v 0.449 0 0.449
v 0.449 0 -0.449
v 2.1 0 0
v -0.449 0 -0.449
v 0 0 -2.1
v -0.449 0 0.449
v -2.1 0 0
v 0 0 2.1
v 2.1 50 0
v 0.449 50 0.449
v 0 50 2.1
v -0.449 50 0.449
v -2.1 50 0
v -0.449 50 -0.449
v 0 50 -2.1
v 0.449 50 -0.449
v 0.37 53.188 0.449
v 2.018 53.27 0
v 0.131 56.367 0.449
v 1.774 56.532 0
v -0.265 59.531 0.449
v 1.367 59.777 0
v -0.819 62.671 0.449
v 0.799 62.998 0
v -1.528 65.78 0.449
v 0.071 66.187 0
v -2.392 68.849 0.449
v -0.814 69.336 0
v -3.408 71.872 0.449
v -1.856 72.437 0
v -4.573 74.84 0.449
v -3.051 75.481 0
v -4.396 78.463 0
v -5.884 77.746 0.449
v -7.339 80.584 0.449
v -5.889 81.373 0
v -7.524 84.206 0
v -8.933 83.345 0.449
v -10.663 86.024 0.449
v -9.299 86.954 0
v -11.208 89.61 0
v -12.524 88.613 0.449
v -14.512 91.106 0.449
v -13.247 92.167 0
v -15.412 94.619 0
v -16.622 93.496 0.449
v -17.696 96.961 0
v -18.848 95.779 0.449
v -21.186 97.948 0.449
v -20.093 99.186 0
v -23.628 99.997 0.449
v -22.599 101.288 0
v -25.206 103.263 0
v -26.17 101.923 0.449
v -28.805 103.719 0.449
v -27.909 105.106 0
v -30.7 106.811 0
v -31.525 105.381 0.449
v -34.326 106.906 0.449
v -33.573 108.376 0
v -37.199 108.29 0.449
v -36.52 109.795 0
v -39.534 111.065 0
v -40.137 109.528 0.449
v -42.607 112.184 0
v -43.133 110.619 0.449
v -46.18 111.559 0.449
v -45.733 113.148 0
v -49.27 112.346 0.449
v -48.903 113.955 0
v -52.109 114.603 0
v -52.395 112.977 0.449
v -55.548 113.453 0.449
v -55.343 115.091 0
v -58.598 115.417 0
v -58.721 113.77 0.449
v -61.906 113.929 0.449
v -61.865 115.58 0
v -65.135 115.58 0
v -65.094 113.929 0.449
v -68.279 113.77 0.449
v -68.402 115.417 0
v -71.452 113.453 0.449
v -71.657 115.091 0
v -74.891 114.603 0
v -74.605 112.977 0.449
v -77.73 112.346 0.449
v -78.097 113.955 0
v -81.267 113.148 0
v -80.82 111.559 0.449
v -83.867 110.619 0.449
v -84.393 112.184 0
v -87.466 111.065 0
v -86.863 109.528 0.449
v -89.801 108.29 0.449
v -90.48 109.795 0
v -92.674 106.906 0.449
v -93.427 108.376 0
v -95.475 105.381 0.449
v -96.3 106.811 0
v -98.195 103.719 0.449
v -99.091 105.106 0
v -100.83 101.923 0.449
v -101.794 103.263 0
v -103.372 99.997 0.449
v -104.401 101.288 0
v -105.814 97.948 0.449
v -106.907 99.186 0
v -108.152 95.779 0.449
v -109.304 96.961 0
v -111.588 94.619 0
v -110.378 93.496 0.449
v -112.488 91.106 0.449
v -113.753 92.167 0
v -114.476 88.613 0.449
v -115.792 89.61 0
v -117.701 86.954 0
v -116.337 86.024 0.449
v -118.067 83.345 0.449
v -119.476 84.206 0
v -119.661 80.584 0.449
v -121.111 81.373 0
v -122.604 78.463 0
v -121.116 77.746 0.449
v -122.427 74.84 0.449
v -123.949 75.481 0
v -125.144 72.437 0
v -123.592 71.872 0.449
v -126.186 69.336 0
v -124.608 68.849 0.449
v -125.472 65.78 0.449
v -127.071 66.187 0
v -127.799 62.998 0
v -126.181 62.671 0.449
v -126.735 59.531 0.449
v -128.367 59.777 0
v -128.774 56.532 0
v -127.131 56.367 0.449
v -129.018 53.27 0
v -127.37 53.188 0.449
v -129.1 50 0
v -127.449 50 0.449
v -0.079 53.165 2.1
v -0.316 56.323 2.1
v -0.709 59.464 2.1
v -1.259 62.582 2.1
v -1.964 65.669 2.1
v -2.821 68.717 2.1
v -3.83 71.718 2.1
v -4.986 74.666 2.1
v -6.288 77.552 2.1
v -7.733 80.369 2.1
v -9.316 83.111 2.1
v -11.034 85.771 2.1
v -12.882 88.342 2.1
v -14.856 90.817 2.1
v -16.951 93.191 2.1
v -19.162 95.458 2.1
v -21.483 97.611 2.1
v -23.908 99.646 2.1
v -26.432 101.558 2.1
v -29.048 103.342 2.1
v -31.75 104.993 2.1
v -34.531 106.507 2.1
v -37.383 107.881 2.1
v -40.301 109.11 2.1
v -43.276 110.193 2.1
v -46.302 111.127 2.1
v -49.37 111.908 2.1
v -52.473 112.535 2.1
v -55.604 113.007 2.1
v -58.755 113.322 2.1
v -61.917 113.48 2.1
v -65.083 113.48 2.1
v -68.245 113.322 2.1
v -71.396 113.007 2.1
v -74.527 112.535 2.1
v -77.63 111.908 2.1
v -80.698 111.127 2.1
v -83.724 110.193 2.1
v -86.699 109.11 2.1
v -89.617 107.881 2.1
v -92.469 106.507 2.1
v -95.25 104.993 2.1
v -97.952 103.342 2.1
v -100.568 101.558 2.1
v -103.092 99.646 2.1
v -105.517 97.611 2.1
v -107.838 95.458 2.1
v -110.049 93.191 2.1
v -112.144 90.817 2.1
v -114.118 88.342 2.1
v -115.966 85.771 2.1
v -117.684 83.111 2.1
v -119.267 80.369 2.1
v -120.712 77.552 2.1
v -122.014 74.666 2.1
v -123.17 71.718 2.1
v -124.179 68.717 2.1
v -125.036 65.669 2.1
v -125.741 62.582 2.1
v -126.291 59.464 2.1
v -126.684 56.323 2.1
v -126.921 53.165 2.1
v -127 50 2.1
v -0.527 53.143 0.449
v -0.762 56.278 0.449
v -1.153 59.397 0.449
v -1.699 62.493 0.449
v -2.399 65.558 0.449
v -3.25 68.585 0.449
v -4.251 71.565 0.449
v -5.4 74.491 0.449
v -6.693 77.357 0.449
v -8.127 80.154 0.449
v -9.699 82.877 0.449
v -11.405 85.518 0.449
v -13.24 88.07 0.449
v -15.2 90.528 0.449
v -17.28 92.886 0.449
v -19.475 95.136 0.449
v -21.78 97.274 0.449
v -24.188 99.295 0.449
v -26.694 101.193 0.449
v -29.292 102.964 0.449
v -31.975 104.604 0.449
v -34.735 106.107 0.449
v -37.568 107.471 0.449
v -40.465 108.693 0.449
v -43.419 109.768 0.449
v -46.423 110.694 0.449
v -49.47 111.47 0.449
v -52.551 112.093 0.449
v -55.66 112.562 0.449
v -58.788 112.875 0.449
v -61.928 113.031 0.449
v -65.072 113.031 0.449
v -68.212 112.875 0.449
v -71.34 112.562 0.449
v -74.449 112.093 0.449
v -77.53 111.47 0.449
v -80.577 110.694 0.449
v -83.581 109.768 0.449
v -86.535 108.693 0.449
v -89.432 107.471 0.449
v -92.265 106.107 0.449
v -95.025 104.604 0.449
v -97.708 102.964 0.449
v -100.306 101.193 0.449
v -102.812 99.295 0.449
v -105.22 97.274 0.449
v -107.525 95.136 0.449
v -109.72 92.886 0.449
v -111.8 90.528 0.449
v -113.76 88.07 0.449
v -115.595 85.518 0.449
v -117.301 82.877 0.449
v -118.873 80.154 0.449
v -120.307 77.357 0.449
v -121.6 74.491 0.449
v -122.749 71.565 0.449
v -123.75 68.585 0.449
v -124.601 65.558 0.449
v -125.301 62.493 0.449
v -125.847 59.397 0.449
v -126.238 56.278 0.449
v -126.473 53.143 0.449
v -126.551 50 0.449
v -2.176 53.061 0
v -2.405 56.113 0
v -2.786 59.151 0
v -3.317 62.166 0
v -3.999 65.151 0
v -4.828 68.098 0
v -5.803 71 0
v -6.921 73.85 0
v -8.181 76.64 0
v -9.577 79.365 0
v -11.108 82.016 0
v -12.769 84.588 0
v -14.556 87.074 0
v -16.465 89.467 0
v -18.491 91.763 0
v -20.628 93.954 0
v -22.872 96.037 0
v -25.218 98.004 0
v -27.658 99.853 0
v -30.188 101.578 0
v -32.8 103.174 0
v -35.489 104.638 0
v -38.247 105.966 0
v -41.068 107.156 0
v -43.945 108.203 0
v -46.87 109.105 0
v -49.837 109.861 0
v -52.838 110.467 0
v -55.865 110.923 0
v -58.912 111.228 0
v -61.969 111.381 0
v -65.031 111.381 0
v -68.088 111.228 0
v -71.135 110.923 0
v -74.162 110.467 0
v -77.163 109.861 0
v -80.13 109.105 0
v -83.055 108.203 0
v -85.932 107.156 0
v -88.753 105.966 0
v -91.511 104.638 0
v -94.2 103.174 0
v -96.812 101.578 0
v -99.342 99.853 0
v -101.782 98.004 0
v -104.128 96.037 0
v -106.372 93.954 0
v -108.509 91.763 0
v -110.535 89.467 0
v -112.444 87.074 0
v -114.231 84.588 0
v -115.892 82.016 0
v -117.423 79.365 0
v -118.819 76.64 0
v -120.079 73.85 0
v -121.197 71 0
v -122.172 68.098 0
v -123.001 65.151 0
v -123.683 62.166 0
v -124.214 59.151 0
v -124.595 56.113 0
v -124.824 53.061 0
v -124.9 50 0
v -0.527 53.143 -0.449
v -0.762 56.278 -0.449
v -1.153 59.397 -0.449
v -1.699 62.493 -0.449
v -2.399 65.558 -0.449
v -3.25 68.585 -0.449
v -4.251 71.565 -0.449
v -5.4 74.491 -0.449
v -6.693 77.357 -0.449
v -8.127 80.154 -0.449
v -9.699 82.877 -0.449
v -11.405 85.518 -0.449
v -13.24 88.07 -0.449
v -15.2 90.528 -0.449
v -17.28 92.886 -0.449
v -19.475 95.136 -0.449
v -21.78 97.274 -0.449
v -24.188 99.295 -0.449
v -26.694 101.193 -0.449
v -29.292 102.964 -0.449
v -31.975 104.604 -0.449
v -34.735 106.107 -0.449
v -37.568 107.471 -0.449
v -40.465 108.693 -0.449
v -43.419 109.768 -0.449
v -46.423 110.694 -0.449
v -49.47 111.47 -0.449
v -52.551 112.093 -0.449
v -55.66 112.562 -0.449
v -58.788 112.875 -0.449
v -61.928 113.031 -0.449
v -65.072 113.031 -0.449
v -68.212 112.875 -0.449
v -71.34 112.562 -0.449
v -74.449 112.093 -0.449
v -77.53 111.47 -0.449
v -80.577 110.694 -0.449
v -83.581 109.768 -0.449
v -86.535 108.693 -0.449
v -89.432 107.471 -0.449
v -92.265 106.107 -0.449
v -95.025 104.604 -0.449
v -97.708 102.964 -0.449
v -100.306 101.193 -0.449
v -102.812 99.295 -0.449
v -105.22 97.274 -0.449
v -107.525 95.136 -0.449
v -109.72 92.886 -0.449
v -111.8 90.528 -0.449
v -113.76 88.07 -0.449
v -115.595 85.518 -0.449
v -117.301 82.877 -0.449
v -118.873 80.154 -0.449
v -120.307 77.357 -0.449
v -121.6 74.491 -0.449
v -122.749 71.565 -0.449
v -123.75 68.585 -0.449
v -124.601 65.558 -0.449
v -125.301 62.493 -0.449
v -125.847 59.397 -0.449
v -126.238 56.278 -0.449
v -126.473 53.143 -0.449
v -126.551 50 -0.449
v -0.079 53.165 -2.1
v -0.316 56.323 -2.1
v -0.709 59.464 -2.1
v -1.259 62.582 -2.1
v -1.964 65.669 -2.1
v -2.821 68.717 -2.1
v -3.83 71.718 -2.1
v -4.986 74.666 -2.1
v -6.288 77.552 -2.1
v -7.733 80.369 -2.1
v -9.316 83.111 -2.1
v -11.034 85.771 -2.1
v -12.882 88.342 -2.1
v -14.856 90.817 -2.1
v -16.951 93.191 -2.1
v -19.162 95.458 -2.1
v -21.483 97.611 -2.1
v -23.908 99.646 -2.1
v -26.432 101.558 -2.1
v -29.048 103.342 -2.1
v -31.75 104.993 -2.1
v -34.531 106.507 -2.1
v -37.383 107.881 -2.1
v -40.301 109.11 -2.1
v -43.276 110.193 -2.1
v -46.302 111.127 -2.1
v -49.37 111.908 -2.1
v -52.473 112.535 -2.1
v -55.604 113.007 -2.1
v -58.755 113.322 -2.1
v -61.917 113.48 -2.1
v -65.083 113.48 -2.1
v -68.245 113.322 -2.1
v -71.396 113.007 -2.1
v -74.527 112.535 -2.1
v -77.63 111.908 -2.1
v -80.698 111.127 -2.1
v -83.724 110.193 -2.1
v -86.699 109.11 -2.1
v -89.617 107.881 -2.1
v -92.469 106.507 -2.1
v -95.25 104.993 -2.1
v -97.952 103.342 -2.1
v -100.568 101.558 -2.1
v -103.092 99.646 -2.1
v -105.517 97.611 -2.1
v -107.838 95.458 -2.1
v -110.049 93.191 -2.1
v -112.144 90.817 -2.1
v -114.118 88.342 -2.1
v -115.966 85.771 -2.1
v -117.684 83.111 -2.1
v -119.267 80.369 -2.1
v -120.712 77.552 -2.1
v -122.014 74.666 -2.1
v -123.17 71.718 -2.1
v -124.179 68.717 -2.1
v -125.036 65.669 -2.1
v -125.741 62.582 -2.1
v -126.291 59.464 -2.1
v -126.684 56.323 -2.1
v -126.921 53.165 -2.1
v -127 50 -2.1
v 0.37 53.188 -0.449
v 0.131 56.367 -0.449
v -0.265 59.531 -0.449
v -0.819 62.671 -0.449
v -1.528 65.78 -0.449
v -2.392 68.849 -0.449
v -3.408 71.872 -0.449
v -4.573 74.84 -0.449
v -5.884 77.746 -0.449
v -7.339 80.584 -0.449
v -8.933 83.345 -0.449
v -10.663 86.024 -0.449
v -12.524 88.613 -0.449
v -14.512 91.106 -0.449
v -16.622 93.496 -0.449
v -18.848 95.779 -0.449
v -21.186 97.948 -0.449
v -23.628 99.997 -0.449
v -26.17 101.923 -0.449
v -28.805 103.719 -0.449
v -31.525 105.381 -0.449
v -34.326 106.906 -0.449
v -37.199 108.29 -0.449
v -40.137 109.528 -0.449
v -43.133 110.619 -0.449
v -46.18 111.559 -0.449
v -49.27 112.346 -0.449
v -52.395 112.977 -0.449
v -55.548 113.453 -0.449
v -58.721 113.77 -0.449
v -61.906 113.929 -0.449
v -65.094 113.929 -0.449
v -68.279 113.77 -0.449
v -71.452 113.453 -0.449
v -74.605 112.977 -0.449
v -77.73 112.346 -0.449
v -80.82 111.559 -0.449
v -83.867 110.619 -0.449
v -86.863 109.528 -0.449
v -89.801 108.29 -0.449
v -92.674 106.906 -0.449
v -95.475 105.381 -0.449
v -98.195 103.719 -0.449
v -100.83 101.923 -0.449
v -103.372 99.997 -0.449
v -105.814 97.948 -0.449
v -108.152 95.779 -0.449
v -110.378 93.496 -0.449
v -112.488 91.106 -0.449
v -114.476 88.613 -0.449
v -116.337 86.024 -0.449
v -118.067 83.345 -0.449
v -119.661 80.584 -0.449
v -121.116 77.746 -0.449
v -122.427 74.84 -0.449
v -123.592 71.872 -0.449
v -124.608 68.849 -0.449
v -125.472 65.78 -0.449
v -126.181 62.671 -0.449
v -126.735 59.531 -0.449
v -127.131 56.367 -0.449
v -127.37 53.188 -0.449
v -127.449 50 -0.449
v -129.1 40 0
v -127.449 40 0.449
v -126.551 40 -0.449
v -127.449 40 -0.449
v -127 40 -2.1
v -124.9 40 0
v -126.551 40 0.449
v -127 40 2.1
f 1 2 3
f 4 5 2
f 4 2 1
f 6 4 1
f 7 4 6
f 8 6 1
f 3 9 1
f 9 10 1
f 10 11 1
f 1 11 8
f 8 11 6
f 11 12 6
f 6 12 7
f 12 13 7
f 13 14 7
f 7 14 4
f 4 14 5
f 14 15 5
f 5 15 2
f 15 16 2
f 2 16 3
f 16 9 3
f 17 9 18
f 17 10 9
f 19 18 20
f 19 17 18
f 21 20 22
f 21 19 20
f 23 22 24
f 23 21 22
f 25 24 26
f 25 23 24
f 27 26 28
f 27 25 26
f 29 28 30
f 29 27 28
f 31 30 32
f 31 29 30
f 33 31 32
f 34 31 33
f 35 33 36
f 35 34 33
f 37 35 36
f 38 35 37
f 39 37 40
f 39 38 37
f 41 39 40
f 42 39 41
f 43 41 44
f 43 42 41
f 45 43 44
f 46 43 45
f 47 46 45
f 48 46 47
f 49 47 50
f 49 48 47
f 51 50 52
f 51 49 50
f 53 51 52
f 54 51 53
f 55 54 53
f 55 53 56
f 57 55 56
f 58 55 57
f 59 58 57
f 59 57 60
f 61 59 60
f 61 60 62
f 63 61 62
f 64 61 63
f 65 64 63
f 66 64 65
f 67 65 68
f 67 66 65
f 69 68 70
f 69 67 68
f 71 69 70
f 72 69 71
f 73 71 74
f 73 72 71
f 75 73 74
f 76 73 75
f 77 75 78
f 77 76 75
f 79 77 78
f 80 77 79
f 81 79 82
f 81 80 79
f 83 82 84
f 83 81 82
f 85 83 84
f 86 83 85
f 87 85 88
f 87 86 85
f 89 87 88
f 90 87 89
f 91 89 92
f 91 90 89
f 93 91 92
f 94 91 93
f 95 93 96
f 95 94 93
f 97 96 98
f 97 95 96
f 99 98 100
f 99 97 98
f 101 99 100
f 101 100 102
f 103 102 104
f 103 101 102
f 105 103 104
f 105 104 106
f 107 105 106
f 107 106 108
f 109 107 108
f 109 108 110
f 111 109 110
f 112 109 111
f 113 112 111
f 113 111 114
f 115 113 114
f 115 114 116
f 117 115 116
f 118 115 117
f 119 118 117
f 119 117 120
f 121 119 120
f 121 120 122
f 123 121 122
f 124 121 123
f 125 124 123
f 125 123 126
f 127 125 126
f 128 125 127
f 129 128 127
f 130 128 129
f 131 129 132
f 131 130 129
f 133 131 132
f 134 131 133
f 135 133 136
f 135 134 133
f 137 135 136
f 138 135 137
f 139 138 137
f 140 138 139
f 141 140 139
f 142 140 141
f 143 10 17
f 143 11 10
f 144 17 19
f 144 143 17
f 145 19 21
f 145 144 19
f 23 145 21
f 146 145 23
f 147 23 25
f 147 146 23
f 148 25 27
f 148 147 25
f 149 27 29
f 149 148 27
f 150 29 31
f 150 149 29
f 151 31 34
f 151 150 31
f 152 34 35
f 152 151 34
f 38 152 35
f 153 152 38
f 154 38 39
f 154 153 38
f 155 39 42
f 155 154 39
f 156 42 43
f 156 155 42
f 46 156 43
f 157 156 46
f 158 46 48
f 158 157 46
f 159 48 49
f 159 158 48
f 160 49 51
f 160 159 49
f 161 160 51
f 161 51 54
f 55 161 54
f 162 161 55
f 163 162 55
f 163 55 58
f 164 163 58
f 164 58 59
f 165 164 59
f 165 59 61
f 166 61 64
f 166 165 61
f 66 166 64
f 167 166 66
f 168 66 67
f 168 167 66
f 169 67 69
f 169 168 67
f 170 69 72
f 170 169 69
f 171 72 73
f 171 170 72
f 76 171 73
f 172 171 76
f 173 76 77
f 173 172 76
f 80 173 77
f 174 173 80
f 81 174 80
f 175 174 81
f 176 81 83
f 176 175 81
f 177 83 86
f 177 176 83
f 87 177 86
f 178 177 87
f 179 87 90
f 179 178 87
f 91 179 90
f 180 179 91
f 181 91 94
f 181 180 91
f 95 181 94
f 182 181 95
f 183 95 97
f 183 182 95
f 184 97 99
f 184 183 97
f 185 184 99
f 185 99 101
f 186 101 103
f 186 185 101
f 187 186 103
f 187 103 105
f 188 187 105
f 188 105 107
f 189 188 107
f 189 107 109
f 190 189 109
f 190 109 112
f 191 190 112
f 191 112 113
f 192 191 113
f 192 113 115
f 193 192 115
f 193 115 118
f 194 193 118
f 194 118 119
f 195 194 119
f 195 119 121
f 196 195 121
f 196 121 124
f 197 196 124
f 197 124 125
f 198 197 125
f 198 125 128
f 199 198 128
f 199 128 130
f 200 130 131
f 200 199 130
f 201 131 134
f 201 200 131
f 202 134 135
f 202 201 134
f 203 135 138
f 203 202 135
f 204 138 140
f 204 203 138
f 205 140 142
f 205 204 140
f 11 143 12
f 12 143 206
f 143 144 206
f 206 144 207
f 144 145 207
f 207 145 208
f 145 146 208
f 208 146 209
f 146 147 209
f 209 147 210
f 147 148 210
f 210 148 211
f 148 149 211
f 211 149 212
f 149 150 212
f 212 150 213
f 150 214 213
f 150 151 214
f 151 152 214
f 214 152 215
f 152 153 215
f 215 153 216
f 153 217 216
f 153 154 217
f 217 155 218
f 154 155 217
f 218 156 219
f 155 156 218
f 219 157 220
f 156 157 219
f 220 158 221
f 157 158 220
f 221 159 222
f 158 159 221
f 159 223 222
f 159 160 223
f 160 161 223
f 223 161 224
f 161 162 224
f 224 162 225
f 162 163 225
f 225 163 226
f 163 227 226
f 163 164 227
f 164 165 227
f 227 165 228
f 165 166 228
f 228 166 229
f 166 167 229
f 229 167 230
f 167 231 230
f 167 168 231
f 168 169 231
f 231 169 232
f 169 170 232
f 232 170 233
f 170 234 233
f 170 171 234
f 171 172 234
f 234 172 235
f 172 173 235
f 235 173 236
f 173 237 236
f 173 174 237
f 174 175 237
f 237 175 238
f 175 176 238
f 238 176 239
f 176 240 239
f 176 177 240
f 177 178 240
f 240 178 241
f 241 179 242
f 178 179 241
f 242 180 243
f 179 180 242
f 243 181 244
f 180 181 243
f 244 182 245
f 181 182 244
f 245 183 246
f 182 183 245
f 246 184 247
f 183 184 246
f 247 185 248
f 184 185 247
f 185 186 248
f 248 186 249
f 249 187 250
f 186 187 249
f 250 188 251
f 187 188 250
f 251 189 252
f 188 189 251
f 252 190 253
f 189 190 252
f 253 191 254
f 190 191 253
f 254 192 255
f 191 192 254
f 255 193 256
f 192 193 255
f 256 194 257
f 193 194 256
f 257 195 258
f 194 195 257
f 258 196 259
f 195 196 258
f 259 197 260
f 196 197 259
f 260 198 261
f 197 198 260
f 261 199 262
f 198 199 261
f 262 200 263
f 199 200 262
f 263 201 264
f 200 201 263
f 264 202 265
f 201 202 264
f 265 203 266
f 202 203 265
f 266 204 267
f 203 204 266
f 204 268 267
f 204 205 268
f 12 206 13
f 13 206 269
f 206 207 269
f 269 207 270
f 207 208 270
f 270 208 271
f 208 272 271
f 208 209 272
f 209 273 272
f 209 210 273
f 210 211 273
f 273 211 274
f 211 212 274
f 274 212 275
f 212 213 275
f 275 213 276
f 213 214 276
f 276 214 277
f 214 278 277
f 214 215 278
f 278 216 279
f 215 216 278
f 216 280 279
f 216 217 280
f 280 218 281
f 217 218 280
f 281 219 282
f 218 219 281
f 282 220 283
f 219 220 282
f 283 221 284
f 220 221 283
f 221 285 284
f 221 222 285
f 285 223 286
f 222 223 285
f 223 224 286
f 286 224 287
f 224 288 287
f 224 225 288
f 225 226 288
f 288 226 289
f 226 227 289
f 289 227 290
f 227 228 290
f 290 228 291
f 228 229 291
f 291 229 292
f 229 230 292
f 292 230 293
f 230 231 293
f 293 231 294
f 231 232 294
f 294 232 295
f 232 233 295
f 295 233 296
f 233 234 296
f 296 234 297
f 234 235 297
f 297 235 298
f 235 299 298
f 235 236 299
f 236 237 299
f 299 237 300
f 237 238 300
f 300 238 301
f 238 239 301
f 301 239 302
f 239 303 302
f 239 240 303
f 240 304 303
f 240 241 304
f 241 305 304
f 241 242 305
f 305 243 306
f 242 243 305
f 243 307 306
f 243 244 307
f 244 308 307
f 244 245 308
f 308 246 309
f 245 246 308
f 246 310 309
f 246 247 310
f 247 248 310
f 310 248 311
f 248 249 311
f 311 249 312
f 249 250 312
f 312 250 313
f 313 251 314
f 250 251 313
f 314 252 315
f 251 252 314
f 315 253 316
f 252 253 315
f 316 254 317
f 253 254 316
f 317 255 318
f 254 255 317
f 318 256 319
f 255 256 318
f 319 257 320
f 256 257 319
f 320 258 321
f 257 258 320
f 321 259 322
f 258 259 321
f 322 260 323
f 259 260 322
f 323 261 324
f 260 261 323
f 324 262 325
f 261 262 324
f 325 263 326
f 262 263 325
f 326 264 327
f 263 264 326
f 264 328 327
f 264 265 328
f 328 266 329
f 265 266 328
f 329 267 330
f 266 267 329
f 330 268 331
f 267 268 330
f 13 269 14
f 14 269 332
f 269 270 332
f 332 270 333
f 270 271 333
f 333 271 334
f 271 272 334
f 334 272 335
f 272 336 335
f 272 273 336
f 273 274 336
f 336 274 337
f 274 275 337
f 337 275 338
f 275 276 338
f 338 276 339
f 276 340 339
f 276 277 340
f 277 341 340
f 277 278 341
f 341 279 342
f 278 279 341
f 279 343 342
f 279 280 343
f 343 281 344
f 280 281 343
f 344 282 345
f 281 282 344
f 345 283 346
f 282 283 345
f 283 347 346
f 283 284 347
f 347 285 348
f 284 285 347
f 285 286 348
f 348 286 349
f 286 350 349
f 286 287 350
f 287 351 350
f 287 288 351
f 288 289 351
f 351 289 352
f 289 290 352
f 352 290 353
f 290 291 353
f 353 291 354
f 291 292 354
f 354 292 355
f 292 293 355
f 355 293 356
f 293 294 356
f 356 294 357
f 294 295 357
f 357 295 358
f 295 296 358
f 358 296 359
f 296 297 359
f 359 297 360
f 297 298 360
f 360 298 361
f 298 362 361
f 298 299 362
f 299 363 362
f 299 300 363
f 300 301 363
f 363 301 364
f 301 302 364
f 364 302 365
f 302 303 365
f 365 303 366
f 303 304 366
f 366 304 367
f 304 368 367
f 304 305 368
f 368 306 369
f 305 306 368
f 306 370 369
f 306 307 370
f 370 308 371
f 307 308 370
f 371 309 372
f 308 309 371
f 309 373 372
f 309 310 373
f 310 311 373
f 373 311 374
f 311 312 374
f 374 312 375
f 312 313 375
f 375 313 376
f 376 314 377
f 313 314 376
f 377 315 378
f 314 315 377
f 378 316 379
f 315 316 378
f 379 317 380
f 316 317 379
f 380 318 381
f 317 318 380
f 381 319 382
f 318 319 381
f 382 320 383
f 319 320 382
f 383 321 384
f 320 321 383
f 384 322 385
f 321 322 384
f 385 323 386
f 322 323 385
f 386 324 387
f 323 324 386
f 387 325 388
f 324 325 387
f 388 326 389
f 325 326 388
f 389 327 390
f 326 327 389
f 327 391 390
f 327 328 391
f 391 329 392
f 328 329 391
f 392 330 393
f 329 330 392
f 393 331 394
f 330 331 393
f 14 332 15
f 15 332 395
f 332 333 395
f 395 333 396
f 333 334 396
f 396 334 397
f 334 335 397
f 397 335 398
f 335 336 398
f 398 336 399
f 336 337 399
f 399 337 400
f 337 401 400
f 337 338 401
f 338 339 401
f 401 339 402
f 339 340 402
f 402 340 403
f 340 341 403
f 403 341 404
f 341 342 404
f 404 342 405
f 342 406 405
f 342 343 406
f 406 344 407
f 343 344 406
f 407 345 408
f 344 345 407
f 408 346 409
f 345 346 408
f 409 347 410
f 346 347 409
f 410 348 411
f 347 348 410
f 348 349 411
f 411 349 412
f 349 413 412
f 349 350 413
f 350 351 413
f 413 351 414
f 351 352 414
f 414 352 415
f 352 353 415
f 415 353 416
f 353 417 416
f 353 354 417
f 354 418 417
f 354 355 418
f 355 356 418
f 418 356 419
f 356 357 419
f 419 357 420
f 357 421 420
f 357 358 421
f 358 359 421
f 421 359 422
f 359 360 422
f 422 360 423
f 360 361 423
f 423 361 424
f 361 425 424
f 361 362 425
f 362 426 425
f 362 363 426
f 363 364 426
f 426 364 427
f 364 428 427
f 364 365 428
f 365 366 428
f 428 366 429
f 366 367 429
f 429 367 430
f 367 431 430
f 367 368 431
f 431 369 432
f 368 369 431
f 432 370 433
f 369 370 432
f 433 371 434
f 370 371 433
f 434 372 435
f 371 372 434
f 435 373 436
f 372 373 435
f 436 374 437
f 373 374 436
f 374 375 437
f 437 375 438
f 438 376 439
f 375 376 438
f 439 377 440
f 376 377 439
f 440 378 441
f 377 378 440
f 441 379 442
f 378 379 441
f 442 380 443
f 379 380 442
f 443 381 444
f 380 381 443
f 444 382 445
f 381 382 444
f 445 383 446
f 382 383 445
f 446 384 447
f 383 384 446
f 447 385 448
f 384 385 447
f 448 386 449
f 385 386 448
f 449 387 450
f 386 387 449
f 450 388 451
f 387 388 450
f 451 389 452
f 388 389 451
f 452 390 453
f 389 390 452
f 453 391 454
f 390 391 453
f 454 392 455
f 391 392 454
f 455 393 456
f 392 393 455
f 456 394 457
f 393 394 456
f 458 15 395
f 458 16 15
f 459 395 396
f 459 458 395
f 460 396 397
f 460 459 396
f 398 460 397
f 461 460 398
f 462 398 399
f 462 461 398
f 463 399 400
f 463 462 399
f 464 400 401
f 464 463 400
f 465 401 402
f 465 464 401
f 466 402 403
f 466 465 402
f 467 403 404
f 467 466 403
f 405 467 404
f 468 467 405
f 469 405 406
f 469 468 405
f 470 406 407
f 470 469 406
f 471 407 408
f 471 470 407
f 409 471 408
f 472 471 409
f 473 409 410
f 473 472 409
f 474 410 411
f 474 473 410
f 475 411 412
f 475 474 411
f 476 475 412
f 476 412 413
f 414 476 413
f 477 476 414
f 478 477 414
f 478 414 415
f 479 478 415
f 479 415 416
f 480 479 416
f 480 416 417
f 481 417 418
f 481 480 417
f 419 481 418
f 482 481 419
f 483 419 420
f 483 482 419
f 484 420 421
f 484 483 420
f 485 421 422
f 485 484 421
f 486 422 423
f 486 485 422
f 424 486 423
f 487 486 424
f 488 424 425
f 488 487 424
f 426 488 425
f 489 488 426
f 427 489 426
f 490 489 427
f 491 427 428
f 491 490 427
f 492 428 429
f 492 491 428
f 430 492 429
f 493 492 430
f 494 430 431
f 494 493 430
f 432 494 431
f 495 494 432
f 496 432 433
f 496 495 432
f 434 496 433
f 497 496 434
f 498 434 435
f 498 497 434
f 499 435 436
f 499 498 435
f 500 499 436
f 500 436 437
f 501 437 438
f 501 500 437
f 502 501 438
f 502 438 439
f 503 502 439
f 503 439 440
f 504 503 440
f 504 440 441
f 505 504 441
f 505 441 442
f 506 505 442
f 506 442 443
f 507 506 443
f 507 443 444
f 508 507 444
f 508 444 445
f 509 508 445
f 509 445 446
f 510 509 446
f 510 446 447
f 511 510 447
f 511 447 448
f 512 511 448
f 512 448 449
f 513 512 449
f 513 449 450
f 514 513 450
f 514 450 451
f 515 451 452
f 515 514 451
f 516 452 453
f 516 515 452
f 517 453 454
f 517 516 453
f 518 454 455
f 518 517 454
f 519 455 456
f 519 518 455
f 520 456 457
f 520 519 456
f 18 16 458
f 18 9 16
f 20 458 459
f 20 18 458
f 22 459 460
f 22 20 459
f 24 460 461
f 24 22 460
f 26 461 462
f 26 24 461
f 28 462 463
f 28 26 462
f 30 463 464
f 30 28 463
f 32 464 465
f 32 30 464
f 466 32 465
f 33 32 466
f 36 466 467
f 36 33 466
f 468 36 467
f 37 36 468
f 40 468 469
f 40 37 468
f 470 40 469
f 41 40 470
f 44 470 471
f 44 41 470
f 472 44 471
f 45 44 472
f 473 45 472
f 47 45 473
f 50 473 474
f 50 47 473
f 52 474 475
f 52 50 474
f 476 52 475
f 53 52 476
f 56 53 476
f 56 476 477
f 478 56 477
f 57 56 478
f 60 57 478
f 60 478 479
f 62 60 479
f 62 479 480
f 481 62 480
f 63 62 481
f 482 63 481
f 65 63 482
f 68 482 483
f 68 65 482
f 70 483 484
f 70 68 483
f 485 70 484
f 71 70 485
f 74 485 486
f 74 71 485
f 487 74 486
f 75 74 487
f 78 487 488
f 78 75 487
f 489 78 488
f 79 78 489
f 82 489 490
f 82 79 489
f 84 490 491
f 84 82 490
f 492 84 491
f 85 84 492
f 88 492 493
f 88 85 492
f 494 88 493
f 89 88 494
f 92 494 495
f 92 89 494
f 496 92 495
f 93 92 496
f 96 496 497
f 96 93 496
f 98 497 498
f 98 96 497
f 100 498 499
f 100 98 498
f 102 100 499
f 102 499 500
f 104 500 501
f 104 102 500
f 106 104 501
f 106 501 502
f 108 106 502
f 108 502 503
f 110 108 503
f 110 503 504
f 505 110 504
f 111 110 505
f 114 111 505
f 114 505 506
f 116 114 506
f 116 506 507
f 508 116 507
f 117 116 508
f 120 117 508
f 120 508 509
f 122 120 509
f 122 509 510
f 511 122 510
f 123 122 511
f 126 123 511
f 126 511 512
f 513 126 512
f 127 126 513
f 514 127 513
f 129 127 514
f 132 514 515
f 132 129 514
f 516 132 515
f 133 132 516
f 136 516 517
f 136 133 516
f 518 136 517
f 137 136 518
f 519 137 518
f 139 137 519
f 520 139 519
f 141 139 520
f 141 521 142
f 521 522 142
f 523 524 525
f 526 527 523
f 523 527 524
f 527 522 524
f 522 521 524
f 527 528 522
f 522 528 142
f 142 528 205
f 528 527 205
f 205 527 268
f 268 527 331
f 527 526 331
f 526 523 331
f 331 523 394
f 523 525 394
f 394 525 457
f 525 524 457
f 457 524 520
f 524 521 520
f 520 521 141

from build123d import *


with BuildPart() as part:
    # AdditivePipe: sweep along a path in Sketch
    with BuildLine(Plane.XY) as additivepipe_path:
        Line((0, 0), (0, 50))
        ThreePointArc((0, 50), (-63.5, 113.5), (-127, 50))
        Line((-127, 50), (-127, 40))
    # Sketch001 → AdditivePipe (sweep)
    with BuildSketch(Plane.XZ):
        Polygon((2.1, 0), (0.449013, 0.449013), (0, 2.1), (-0.449013, 0.449013), (-2.1, 0), (-0.449013, -0.449013), (0, -2.1), (0.449013, -0.449013), align=None)
    sweep(path=additivepipe_path.line)


solid = part.part
